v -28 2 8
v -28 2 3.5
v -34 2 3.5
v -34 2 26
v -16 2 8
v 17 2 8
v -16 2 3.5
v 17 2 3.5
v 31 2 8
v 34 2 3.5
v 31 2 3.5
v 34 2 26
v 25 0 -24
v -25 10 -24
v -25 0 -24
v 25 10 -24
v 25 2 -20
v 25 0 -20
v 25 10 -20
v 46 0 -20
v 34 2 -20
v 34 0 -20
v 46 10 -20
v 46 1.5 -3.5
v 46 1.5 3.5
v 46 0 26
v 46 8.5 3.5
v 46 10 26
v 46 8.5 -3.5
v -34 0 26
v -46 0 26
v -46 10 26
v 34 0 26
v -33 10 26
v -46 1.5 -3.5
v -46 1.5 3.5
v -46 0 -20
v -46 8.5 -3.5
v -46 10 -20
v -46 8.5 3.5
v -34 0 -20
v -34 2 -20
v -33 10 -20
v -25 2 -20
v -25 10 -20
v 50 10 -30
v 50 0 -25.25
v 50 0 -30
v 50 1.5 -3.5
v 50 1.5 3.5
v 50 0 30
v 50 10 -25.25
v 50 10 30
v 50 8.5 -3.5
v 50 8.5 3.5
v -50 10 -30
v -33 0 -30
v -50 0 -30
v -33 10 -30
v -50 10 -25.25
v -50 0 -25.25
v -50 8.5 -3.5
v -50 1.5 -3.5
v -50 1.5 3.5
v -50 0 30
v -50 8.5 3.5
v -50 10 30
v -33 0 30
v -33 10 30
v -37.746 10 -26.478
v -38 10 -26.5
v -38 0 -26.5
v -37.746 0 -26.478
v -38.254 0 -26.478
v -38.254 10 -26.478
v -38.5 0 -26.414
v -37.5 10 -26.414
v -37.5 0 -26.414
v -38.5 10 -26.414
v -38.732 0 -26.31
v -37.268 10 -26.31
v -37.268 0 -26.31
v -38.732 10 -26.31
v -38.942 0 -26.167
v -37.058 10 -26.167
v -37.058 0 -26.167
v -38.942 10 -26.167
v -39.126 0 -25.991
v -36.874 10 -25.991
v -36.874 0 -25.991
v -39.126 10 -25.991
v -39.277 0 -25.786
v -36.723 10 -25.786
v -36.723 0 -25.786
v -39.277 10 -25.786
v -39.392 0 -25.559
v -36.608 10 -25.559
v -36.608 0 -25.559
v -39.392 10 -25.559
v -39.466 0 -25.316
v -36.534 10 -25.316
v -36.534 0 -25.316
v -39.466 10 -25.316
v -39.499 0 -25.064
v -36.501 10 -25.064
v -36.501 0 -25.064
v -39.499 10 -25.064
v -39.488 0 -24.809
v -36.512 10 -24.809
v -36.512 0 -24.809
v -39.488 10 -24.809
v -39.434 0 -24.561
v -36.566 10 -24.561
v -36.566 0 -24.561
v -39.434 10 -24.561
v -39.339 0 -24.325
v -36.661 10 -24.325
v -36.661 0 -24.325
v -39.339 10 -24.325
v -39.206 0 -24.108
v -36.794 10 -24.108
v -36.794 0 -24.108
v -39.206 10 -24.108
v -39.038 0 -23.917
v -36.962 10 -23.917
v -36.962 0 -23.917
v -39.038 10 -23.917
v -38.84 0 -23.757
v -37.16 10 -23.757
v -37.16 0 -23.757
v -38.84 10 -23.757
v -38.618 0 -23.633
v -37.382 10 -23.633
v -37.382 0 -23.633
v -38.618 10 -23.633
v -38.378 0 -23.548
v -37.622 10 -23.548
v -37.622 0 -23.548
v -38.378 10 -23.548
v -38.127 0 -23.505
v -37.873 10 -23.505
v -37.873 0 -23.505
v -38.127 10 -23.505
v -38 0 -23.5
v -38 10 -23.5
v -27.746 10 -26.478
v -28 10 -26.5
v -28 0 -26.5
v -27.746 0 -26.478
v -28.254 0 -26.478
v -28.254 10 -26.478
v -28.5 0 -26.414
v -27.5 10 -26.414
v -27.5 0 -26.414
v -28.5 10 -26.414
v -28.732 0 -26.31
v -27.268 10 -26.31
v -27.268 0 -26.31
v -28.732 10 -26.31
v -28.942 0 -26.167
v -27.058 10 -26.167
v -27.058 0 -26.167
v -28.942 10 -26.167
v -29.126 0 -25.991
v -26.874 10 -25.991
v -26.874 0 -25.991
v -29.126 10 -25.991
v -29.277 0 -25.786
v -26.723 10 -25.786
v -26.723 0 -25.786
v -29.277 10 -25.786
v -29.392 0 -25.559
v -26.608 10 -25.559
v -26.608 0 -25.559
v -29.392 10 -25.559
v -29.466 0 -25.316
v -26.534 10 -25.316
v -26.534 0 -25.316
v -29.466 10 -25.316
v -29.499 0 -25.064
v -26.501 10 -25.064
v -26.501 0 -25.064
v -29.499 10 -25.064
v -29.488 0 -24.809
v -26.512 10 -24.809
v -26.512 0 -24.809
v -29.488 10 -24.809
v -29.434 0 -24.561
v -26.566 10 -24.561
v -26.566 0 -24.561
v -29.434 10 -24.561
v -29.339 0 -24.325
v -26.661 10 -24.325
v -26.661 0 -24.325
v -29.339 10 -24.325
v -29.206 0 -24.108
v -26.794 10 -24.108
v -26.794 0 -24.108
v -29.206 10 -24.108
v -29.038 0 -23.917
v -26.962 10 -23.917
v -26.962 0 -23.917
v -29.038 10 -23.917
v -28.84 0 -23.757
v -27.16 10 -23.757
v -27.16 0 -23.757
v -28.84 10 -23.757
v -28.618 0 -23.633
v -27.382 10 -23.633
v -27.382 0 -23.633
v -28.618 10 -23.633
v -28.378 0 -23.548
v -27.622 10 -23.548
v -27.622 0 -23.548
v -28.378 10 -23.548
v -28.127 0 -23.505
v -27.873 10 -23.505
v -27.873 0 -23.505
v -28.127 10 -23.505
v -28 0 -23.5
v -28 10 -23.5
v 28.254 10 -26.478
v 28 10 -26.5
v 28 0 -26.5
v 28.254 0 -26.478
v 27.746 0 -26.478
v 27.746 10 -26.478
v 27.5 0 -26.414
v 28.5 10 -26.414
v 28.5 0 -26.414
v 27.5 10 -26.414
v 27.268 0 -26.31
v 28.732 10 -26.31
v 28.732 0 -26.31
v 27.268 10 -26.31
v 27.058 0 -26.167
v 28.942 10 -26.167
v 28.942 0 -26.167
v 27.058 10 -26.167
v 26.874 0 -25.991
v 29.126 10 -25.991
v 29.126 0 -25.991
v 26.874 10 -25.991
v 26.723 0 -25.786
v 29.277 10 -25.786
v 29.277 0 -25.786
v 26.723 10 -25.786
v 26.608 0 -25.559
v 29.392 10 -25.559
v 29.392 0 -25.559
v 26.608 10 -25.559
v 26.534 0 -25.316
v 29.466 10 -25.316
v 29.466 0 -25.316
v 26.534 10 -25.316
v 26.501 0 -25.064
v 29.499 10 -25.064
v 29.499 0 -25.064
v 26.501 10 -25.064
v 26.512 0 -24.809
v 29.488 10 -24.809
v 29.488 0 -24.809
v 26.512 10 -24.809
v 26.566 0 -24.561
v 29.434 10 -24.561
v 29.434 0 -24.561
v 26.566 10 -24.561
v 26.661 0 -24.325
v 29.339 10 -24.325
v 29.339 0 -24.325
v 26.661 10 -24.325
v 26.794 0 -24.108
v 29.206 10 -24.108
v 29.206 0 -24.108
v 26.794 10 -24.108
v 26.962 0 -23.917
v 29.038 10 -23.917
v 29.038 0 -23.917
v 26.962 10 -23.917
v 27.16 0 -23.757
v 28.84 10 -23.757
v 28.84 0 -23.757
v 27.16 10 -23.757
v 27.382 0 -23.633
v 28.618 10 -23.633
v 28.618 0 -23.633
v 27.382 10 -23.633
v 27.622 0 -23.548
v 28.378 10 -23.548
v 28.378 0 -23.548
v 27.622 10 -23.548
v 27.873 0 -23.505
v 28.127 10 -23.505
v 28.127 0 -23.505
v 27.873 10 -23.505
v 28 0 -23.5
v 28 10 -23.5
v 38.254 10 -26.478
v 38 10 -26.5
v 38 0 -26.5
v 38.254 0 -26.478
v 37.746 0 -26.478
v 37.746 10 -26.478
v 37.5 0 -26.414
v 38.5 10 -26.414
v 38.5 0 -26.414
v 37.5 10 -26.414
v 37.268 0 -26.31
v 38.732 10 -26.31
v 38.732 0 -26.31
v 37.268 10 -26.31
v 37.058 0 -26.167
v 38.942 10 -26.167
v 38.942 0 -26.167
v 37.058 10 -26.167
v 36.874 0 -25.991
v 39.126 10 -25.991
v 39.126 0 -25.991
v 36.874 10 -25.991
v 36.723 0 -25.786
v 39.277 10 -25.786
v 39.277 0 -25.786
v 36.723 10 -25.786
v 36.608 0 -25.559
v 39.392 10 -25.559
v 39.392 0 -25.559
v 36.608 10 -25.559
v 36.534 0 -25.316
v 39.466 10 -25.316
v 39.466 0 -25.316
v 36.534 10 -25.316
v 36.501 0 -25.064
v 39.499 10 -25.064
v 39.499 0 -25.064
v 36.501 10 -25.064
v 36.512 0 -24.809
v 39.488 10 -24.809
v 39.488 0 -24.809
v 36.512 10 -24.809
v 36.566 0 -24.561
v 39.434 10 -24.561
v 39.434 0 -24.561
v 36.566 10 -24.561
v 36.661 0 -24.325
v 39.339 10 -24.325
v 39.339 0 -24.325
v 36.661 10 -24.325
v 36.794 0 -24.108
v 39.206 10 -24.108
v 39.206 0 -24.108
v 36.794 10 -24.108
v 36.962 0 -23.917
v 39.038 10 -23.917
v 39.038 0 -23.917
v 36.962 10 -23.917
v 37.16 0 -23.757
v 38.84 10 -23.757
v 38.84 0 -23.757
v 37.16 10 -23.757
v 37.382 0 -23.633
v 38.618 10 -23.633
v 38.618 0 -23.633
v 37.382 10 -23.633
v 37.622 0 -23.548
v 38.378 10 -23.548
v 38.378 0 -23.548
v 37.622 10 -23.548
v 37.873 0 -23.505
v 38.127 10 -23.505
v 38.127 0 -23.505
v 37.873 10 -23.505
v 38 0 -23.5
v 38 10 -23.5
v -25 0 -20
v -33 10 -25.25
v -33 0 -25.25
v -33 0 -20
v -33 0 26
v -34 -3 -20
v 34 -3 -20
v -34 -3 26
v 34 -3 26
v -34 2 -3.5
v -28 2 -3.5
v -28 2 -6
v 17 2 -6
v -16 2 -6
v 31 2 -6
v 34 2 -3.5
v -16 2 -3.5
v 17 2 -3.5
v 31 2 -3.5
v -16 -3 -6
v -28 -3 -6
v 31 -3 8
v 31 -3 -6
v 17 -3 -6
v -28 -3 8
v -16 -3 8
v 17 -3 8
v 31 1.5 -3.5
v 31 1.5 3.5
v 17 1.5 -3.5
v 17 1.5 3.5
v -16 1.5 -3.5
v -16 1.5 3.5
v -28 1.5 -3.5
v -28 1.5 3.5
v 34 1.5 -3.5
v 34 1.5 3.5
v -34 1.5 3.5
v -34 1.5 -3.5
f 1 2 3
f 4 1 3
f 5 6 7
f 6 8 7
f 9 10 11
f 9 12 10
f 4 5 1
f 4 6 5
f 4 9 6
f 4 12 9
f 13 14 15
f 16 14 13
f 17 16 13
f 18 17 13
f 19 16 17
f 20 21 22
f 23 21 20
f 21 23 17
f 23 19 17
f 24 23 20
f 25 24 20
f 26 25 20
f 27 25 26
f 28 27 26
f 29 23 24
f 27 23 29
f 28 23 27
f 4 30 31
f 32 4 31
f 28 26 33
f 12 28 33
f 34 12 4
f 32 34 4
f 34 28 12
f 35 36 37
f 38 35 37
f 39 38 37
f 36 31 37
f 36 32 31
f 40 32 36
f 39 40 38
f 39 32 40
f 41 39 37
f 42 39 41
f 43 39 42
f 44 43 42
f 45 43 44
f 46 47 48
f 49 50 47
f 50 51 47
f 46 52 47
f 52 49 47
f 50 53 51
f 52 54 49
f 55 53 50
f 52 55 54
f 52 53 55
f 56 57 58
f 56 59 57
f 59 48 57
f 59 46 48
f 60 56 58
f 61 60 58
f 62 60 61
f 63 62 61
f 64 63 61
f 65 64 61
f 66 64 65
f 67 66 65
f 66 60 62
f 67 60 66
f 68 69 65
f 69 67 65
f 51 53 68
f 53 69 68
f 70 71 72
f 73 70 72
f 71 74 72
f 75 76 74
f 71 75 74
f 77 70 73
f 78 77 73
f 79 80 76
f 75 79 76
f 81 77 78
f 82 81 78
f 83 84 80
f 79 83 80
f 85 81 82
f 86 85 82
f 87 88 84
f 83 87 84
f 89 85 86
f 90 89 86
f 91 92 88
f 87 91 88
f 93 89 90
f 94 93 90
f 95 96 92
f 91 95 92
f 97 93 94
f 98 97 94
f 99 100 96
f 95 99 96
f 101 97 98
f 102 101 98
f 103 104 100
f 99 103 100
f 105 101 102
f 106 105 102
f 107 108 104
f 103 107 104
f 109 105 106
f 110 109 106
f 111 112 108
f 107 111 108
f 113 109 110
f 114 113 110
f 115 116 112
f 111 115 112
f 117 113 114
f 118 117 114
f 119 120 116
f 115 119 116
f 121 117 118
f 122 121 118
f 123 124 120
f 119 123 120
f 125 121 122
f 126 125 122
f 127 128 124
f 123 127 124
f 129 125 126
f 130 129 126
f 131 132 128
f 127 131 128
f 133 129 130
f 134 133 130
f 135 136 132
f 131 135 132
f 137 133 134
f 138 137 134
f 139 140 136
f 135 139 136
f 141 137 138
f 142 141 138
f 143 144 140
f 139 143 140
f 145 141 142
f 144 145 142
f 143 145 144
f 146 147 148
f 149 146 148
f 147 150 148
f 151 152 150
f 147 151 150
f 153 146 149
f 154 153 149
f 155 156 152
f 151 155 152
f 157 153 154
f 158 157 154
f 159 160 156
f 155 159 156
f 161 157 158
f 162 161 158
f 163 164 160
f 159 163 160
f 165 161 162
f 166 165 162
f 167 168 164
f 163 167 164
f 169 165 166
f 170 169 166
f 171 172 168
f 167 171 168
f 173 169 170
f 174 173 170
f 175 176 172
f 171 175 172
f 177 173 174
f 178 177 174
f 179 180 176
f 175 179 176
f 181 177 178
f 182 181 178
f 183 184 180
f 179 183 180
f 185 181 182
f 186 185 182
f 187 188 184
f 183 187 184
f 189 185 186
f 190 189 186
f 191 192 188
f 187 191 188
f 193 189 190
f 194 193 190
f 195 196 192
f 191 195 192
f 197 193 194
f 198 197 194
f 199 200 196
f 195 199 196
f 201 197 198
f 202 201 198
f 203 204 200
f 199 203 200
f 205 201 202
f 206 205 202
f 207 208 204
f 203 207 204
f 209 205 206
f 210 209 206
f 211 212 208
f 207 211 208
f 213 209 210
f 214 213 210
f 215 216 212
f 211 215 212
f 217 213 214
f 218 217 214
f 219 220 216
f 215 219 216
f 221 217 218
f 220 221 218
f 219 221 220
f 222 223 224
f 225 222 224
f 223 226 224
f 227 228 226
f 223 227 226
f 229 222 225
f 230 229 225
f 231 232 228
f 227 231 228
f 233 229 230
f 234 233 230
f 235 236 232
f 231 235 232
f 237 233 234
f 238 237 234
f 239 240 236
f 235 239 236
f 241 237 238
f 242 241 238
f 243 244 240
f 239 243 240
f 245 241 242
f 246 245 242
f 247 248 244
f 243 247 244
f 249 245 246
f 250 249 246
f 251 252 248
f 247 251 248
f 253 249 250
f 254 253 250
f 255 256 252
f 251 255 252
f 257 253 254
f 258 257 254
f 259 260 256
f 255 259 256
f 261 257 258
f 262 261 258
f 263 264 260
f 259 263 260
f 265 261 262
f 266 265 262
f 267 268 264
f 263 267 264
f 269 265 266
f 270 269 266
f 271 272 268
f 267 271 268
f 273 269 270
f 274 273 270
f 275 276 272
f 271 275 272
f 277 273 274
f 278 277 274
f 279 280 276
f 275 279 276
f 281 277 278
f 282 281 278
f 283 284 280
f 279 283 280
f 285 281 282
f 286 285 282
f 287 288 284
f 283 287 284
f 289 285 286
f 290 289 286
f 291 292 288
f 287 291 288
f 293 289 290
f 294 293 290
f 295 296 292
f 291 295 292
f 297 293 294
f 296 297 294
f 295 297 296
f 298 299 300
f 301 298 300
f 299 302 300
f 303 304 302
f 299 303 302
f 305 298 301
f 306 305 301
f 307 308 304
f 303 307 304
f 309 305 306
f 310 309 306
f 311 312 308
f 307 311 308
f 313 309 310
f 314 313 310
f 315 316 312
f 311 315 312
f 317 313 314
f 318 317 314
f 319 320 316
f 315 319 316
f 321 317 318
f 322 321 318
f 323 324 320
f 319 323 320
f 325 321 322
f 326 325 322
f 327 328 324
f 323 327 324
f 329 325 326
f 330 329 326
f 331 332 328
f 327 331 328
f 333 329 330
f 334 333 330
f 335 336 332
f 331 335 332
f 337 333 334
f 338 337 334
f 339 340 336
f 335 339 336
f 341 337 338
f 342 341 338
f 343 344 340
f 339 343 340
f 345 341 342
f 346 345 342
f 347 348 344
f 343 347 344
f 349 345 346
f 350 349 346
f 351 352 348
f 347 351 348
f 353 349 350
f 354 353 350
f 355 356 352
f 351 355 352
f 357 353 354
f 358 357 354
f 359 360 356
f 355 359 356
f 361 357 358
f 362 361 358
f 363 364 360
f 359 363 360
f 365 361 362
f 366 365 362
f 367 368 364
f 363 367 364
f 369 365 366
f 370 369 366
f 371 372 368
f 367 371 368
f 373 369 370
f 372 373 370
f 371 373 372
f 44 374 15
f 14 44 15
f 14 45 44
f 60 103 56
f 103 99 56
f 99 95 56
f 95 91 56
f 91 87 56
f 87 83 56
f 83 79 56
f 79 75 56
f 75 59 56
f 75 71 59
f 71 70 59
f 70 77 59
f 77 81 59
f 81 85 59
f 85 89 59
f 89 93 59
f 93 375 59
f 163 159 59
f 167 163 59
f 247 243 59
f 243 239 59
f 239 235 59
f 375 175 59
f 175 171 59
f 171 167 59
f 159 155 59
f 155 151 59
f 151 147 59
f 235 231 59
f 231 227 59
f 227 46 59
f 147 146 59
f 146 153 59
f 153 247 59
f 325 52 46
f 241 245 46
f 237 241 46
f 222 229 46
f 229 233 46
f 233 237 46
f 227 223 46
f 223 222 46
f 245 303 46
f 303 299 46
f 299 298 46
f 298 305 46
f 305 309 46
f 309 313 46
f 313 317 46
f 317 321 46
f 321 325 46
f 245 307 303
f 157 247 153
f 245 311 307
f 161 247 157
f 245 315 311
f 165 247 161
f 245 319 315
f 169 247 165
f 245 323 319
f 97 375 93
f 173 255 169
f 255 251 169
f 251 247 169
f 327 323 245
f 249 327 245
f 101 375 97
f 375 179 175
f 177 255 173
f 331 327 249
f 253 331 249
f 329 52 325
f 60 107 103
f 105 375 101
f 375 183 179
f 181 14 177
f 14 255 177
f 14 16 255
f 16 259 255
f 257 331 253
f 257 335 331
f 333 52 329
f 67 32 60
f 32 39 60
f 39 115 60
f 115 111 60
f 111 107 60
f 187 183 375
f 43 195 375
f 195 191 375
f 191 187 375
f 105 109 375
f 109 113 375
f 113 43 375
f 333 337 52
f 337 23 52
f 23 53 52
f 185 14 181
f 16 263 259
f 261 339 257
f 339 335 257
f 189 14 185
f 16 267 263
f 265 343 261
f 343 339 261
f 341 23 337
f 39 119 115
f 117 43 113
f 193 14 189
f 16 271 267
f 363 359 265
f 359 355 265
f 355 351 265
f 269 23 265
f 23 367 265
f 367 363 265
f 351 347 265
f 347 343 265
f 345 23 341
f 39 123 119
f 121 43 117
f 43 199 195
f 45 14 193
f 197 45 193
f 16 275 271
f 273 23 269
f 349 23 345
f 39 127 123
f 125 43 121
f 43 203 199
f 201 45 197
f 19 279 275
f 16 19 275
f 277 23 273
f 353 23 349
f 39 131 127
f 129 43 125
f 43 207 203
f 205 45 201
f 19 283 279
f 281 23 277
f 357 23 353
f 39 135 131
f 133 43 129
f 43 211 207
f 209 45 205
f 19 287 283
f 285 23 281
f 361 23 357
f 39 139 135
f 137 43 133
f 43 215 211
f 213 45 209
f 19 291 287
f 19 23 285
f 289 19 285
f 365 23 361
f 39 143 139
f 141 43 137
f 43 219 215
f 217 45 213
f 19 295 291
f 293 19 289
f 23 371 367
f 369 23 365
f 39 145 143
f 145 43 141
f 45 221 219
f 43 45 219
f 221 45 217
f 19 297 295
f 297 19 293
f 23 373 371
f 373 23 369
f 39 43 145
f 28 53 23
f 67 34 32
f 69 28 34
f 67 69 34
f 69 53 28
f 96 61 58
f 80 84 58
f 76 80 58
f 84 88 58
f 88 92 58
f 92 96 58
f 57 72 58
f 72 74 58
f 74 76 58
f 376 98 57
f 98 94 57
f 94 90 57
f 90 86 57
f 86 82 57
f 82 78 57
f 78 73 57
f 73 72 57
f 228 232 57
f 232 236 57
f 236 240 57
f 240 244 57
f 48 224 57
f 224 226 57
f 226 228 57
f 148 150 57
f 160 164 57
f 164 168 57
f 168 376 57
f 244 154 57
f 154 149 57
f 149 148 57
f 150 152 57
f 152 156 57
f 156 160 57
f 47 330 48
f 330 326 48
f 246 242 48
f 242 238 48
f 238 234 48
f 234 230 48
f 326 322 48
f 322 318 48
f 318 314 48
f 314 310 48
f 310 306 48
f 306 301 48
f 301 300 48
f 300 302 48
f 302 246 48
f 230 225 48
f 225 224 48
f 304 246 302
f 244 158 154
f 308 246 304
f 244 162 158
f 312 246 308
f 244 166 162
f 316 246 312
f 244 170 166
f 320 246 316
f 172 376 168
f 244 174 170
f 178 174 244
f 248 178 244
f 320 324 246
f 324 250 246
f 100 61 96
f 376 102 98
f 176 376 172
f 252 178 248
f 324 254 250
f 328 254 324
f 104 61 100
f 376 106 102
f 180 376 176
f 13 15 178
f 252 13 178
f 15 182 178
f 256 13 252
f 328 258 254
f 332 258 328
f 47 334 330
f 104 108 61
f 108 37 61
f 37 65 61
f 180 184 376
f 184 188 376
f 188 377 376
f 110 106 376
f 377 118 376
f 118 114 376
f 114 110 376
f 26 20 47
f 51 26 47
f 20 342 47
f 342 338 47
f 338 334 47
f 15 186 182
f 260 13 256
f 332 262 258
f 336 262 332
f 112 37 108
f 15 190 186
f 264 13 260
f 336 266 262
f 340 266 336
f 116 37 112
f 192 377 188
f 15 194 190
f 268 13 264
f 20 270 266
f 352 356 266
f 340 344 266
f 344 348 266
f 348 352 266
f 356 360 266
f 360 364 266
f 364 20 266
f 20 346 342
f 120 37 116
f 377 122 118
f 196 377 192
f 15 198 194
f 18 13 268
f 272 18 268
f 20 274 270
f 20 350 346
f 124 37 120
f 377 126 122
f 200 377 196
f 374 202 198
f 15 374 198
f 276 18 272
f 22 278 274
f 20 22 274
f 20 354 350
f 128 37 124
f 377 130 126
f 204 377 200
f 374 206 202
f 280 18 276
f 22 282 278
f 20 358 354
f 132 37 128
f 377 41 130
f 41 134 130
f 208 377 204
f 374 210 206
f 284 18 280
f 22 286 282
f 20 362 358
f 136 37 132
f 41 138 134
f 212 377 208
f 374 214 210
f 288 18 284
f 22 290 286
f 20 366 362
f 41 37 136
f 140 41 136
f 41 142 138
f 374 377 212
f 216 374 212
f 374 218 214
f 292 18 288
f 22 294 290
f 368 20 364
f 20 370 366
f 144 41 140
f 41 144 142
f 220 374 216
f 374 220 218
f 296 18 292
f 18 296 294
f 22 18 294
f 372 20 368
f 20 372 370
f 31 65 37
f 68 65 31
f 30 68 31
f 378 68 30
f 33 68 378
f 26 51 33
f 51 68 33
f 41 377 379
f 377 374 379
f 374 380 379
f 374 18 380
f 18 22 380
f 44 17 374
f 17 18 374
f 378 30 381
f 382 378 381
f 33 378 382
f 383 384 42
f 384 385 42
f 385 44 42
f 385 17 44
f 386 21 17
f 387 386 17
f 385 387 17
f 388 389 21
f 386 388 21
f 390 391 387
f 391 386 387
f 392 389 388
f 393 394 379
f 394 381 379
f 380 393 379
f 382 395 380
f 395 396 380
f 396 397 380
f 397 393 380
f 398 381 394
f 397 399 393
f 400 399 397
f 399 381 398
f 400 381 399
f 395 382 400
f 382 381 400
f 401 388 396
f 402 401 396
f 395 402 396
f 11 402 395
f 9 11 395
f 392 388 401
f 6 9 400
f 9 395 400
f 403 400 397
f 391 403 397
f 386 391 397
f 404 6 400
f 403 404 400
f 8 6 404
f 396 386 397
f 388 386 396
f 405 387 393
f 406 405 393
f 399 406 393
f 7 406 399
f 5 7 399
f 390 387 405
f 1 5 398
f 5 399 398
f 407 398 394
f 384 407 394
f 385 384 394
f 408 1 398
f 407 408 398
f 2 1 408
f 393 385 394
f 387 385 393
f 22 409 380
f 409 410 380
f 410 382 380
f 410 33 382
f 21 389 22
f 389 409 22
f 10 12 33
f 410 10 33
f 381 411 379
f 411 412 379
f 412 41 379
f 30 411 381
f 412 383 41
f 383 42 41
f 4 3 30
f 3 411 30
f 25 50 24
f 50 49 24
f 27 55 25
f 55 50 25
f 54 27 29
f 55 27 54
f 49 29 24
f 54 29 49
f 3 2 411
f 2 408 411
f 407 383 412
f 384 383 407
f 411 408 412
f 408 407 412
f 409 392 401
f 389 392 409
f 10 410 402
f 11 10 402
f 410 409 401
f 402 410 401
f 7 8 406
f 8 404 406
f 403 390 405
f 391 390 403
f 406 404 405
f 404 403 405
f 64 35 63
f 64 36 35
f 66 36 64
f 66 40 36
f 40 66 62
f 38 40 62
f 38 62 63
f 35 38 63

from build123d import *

# Parameters (mm, degrees)
CROQUIS1_W                   = 100
CROQUIS1_H                   = 60
CROQUIS1_R                   = 1.5
SALIENTE_EXTRUIR1_DEPTH      = 10
SALIENTE_EXTRUIR2_DEPTH      = 2
SALIENTE_EXTRUIR2_DEPTH_BACK = 3
CROQUIS1_2_W                 = 92
CROQUIS1_2_H                 = 46
CROQUIS2_W                   = 12
CROQUIS2_H                   = 14
CROQUIS2_W_2                 = 14
CORTAR_EXTRUIR1_DEPTH        = 5
CORTAR_EXTRUIR2_START        = -5
CROQUIS3_W                   = 12
CROQUIS3_H                   = 46
CORTAR_EXTRUIR2_DEPTH        = 5
MATRIZL1_COUNT               = 2
MATRIZL1_PITCH               = 80
CROQUIS4_W                   = 7
CROQUIS4_H                   = 7
CORTAR_EXTRUIR3_DEPTH        = 100
MATRIZL2_COUNT               = 2
MATRIZL2_PITCH               = 96


with BuildPart() as part:
    # Croquis1 → Saliente-Extruir1 (new body)
    with BuildSketch(Plane(origin=(0, 0, 0), x_dir=(1, 0, 0), z_dir=(0, 1, 0))):
        Rectangle(CROQUIS1_W, CROQUIS1_H)
        Polygon((-46, 20), (-25, 20), (-25, 24), (25, 24), (25, 20), (46, 20), (46, -26), (-46, -26), align=None, mode=Mode.SUBTRACT)
        with Locations(Location((-38, 25, 0), (0, 0, 270))):
            Circle(CROQUIS1_R, mode=Mode.SUBTRACT)
        with Locations(Location((-28, 25, 0), (0, 0, 270))):
            Circle(CROQUIS1_R, mode=Mode.SUBTRACT)
        with Locations(Location((28, 25, 0), (0, 0, 270))):
            Circle(CROQUIS1_R, mode=Mode.SUBTRACT)
        with Locations(Location((38, 25, 0), (0, 0, 270))):
            Circle(CROQUIS1_R, mode=Mode.SUBTRACT)
    extrude(amount=SALIENTE_EXTRUIR1_DEPTH)

    # Croquis1<2> → Saliente-Extruir2 (add, two sides: drawn at the far end of the back side and taken through both)
    with BuildSketch(Plane(origin=(0, 0, 0), x_dir=(1, 0, 0), z_dir=(0, 1, 0)).offset(-SALIENTE_EXTRUIR2_DEPTH_BACK)):
        with Locations((0, -3)):
            Rectangle(CROQUIS1_2_W, CROQUIS1_2_H)
    extrude(amount=SALIENTE_EXTRUIR2_DEPTH + SALIENTE_EXTRUIR2_DEPTH_BACK)

    # Croquis2 → Cortar-Extruir1 (cut)
    with BuildSketch(Plane(origin=(0, 2, 0), x_dir=(1, 0, 0), z_dir=(0, 1, 0))):
        with Locations((-22, -1)):
            Rectangle(CROQUIS2_W, CROQUIS2_H)
        with Locations((24, -1)):
            Rectangle(CROQUIS2_W_2, CROQUIS2_H)
    extrude(amount=-CORTAR_EXTRUIR1_DEPTH, mode=Mode.SUBTRACT)

    # Croquis3 → Cortar-Extruir2 (cut)
    with BuildSketch(Plane(origin=(0, 2, 0), x_dir=(1, 0, 0), z_dir=(0, 1, 0)).offset(CORTAR_EXTRUIR2_START)):
        with Locations((40, -3)):
            Rectangle(CROQUIS3_W, CROQUIS3_H)
    cortar_extruir2 = extrude(amount=CORTAR_EXTRUIR2_DEPTH, mode=Mode.SUBTRACT)

    # MatrizL1: Cortar-Extruir2 ×2
    with Locations(*[(-i * MATRIZL1_PITCH, 0, 0) for i in range(1, MATRIZL1_COUNT)]):
        add(cortar_extruir2, mode=Mode.SUBTRACT)

    # Croquis4 → Cortar-Extruir3 (cut)
    with BuildSketch(Plane.ZY.offset(-46)):
        with Locations((0, 5)):
            Rectangle(CROQUIS4_W, CROQUIS4_H)
    cortar_extruir3 = extrude(amount=-CORTAR_EXTRUIR3_DEPTH, mode=Mode.SUBTRACT)

    # MatrizL2: Cortar-Extruir3 ×2
    with Locations(*[(-i * MATRIZL2_PITCH, 0, 0) for i in range(1, MATRIZL2_COUNT)]):
        add(cortar_extruir3, mode=Mode.SUBTRACT)


solid = part.part
